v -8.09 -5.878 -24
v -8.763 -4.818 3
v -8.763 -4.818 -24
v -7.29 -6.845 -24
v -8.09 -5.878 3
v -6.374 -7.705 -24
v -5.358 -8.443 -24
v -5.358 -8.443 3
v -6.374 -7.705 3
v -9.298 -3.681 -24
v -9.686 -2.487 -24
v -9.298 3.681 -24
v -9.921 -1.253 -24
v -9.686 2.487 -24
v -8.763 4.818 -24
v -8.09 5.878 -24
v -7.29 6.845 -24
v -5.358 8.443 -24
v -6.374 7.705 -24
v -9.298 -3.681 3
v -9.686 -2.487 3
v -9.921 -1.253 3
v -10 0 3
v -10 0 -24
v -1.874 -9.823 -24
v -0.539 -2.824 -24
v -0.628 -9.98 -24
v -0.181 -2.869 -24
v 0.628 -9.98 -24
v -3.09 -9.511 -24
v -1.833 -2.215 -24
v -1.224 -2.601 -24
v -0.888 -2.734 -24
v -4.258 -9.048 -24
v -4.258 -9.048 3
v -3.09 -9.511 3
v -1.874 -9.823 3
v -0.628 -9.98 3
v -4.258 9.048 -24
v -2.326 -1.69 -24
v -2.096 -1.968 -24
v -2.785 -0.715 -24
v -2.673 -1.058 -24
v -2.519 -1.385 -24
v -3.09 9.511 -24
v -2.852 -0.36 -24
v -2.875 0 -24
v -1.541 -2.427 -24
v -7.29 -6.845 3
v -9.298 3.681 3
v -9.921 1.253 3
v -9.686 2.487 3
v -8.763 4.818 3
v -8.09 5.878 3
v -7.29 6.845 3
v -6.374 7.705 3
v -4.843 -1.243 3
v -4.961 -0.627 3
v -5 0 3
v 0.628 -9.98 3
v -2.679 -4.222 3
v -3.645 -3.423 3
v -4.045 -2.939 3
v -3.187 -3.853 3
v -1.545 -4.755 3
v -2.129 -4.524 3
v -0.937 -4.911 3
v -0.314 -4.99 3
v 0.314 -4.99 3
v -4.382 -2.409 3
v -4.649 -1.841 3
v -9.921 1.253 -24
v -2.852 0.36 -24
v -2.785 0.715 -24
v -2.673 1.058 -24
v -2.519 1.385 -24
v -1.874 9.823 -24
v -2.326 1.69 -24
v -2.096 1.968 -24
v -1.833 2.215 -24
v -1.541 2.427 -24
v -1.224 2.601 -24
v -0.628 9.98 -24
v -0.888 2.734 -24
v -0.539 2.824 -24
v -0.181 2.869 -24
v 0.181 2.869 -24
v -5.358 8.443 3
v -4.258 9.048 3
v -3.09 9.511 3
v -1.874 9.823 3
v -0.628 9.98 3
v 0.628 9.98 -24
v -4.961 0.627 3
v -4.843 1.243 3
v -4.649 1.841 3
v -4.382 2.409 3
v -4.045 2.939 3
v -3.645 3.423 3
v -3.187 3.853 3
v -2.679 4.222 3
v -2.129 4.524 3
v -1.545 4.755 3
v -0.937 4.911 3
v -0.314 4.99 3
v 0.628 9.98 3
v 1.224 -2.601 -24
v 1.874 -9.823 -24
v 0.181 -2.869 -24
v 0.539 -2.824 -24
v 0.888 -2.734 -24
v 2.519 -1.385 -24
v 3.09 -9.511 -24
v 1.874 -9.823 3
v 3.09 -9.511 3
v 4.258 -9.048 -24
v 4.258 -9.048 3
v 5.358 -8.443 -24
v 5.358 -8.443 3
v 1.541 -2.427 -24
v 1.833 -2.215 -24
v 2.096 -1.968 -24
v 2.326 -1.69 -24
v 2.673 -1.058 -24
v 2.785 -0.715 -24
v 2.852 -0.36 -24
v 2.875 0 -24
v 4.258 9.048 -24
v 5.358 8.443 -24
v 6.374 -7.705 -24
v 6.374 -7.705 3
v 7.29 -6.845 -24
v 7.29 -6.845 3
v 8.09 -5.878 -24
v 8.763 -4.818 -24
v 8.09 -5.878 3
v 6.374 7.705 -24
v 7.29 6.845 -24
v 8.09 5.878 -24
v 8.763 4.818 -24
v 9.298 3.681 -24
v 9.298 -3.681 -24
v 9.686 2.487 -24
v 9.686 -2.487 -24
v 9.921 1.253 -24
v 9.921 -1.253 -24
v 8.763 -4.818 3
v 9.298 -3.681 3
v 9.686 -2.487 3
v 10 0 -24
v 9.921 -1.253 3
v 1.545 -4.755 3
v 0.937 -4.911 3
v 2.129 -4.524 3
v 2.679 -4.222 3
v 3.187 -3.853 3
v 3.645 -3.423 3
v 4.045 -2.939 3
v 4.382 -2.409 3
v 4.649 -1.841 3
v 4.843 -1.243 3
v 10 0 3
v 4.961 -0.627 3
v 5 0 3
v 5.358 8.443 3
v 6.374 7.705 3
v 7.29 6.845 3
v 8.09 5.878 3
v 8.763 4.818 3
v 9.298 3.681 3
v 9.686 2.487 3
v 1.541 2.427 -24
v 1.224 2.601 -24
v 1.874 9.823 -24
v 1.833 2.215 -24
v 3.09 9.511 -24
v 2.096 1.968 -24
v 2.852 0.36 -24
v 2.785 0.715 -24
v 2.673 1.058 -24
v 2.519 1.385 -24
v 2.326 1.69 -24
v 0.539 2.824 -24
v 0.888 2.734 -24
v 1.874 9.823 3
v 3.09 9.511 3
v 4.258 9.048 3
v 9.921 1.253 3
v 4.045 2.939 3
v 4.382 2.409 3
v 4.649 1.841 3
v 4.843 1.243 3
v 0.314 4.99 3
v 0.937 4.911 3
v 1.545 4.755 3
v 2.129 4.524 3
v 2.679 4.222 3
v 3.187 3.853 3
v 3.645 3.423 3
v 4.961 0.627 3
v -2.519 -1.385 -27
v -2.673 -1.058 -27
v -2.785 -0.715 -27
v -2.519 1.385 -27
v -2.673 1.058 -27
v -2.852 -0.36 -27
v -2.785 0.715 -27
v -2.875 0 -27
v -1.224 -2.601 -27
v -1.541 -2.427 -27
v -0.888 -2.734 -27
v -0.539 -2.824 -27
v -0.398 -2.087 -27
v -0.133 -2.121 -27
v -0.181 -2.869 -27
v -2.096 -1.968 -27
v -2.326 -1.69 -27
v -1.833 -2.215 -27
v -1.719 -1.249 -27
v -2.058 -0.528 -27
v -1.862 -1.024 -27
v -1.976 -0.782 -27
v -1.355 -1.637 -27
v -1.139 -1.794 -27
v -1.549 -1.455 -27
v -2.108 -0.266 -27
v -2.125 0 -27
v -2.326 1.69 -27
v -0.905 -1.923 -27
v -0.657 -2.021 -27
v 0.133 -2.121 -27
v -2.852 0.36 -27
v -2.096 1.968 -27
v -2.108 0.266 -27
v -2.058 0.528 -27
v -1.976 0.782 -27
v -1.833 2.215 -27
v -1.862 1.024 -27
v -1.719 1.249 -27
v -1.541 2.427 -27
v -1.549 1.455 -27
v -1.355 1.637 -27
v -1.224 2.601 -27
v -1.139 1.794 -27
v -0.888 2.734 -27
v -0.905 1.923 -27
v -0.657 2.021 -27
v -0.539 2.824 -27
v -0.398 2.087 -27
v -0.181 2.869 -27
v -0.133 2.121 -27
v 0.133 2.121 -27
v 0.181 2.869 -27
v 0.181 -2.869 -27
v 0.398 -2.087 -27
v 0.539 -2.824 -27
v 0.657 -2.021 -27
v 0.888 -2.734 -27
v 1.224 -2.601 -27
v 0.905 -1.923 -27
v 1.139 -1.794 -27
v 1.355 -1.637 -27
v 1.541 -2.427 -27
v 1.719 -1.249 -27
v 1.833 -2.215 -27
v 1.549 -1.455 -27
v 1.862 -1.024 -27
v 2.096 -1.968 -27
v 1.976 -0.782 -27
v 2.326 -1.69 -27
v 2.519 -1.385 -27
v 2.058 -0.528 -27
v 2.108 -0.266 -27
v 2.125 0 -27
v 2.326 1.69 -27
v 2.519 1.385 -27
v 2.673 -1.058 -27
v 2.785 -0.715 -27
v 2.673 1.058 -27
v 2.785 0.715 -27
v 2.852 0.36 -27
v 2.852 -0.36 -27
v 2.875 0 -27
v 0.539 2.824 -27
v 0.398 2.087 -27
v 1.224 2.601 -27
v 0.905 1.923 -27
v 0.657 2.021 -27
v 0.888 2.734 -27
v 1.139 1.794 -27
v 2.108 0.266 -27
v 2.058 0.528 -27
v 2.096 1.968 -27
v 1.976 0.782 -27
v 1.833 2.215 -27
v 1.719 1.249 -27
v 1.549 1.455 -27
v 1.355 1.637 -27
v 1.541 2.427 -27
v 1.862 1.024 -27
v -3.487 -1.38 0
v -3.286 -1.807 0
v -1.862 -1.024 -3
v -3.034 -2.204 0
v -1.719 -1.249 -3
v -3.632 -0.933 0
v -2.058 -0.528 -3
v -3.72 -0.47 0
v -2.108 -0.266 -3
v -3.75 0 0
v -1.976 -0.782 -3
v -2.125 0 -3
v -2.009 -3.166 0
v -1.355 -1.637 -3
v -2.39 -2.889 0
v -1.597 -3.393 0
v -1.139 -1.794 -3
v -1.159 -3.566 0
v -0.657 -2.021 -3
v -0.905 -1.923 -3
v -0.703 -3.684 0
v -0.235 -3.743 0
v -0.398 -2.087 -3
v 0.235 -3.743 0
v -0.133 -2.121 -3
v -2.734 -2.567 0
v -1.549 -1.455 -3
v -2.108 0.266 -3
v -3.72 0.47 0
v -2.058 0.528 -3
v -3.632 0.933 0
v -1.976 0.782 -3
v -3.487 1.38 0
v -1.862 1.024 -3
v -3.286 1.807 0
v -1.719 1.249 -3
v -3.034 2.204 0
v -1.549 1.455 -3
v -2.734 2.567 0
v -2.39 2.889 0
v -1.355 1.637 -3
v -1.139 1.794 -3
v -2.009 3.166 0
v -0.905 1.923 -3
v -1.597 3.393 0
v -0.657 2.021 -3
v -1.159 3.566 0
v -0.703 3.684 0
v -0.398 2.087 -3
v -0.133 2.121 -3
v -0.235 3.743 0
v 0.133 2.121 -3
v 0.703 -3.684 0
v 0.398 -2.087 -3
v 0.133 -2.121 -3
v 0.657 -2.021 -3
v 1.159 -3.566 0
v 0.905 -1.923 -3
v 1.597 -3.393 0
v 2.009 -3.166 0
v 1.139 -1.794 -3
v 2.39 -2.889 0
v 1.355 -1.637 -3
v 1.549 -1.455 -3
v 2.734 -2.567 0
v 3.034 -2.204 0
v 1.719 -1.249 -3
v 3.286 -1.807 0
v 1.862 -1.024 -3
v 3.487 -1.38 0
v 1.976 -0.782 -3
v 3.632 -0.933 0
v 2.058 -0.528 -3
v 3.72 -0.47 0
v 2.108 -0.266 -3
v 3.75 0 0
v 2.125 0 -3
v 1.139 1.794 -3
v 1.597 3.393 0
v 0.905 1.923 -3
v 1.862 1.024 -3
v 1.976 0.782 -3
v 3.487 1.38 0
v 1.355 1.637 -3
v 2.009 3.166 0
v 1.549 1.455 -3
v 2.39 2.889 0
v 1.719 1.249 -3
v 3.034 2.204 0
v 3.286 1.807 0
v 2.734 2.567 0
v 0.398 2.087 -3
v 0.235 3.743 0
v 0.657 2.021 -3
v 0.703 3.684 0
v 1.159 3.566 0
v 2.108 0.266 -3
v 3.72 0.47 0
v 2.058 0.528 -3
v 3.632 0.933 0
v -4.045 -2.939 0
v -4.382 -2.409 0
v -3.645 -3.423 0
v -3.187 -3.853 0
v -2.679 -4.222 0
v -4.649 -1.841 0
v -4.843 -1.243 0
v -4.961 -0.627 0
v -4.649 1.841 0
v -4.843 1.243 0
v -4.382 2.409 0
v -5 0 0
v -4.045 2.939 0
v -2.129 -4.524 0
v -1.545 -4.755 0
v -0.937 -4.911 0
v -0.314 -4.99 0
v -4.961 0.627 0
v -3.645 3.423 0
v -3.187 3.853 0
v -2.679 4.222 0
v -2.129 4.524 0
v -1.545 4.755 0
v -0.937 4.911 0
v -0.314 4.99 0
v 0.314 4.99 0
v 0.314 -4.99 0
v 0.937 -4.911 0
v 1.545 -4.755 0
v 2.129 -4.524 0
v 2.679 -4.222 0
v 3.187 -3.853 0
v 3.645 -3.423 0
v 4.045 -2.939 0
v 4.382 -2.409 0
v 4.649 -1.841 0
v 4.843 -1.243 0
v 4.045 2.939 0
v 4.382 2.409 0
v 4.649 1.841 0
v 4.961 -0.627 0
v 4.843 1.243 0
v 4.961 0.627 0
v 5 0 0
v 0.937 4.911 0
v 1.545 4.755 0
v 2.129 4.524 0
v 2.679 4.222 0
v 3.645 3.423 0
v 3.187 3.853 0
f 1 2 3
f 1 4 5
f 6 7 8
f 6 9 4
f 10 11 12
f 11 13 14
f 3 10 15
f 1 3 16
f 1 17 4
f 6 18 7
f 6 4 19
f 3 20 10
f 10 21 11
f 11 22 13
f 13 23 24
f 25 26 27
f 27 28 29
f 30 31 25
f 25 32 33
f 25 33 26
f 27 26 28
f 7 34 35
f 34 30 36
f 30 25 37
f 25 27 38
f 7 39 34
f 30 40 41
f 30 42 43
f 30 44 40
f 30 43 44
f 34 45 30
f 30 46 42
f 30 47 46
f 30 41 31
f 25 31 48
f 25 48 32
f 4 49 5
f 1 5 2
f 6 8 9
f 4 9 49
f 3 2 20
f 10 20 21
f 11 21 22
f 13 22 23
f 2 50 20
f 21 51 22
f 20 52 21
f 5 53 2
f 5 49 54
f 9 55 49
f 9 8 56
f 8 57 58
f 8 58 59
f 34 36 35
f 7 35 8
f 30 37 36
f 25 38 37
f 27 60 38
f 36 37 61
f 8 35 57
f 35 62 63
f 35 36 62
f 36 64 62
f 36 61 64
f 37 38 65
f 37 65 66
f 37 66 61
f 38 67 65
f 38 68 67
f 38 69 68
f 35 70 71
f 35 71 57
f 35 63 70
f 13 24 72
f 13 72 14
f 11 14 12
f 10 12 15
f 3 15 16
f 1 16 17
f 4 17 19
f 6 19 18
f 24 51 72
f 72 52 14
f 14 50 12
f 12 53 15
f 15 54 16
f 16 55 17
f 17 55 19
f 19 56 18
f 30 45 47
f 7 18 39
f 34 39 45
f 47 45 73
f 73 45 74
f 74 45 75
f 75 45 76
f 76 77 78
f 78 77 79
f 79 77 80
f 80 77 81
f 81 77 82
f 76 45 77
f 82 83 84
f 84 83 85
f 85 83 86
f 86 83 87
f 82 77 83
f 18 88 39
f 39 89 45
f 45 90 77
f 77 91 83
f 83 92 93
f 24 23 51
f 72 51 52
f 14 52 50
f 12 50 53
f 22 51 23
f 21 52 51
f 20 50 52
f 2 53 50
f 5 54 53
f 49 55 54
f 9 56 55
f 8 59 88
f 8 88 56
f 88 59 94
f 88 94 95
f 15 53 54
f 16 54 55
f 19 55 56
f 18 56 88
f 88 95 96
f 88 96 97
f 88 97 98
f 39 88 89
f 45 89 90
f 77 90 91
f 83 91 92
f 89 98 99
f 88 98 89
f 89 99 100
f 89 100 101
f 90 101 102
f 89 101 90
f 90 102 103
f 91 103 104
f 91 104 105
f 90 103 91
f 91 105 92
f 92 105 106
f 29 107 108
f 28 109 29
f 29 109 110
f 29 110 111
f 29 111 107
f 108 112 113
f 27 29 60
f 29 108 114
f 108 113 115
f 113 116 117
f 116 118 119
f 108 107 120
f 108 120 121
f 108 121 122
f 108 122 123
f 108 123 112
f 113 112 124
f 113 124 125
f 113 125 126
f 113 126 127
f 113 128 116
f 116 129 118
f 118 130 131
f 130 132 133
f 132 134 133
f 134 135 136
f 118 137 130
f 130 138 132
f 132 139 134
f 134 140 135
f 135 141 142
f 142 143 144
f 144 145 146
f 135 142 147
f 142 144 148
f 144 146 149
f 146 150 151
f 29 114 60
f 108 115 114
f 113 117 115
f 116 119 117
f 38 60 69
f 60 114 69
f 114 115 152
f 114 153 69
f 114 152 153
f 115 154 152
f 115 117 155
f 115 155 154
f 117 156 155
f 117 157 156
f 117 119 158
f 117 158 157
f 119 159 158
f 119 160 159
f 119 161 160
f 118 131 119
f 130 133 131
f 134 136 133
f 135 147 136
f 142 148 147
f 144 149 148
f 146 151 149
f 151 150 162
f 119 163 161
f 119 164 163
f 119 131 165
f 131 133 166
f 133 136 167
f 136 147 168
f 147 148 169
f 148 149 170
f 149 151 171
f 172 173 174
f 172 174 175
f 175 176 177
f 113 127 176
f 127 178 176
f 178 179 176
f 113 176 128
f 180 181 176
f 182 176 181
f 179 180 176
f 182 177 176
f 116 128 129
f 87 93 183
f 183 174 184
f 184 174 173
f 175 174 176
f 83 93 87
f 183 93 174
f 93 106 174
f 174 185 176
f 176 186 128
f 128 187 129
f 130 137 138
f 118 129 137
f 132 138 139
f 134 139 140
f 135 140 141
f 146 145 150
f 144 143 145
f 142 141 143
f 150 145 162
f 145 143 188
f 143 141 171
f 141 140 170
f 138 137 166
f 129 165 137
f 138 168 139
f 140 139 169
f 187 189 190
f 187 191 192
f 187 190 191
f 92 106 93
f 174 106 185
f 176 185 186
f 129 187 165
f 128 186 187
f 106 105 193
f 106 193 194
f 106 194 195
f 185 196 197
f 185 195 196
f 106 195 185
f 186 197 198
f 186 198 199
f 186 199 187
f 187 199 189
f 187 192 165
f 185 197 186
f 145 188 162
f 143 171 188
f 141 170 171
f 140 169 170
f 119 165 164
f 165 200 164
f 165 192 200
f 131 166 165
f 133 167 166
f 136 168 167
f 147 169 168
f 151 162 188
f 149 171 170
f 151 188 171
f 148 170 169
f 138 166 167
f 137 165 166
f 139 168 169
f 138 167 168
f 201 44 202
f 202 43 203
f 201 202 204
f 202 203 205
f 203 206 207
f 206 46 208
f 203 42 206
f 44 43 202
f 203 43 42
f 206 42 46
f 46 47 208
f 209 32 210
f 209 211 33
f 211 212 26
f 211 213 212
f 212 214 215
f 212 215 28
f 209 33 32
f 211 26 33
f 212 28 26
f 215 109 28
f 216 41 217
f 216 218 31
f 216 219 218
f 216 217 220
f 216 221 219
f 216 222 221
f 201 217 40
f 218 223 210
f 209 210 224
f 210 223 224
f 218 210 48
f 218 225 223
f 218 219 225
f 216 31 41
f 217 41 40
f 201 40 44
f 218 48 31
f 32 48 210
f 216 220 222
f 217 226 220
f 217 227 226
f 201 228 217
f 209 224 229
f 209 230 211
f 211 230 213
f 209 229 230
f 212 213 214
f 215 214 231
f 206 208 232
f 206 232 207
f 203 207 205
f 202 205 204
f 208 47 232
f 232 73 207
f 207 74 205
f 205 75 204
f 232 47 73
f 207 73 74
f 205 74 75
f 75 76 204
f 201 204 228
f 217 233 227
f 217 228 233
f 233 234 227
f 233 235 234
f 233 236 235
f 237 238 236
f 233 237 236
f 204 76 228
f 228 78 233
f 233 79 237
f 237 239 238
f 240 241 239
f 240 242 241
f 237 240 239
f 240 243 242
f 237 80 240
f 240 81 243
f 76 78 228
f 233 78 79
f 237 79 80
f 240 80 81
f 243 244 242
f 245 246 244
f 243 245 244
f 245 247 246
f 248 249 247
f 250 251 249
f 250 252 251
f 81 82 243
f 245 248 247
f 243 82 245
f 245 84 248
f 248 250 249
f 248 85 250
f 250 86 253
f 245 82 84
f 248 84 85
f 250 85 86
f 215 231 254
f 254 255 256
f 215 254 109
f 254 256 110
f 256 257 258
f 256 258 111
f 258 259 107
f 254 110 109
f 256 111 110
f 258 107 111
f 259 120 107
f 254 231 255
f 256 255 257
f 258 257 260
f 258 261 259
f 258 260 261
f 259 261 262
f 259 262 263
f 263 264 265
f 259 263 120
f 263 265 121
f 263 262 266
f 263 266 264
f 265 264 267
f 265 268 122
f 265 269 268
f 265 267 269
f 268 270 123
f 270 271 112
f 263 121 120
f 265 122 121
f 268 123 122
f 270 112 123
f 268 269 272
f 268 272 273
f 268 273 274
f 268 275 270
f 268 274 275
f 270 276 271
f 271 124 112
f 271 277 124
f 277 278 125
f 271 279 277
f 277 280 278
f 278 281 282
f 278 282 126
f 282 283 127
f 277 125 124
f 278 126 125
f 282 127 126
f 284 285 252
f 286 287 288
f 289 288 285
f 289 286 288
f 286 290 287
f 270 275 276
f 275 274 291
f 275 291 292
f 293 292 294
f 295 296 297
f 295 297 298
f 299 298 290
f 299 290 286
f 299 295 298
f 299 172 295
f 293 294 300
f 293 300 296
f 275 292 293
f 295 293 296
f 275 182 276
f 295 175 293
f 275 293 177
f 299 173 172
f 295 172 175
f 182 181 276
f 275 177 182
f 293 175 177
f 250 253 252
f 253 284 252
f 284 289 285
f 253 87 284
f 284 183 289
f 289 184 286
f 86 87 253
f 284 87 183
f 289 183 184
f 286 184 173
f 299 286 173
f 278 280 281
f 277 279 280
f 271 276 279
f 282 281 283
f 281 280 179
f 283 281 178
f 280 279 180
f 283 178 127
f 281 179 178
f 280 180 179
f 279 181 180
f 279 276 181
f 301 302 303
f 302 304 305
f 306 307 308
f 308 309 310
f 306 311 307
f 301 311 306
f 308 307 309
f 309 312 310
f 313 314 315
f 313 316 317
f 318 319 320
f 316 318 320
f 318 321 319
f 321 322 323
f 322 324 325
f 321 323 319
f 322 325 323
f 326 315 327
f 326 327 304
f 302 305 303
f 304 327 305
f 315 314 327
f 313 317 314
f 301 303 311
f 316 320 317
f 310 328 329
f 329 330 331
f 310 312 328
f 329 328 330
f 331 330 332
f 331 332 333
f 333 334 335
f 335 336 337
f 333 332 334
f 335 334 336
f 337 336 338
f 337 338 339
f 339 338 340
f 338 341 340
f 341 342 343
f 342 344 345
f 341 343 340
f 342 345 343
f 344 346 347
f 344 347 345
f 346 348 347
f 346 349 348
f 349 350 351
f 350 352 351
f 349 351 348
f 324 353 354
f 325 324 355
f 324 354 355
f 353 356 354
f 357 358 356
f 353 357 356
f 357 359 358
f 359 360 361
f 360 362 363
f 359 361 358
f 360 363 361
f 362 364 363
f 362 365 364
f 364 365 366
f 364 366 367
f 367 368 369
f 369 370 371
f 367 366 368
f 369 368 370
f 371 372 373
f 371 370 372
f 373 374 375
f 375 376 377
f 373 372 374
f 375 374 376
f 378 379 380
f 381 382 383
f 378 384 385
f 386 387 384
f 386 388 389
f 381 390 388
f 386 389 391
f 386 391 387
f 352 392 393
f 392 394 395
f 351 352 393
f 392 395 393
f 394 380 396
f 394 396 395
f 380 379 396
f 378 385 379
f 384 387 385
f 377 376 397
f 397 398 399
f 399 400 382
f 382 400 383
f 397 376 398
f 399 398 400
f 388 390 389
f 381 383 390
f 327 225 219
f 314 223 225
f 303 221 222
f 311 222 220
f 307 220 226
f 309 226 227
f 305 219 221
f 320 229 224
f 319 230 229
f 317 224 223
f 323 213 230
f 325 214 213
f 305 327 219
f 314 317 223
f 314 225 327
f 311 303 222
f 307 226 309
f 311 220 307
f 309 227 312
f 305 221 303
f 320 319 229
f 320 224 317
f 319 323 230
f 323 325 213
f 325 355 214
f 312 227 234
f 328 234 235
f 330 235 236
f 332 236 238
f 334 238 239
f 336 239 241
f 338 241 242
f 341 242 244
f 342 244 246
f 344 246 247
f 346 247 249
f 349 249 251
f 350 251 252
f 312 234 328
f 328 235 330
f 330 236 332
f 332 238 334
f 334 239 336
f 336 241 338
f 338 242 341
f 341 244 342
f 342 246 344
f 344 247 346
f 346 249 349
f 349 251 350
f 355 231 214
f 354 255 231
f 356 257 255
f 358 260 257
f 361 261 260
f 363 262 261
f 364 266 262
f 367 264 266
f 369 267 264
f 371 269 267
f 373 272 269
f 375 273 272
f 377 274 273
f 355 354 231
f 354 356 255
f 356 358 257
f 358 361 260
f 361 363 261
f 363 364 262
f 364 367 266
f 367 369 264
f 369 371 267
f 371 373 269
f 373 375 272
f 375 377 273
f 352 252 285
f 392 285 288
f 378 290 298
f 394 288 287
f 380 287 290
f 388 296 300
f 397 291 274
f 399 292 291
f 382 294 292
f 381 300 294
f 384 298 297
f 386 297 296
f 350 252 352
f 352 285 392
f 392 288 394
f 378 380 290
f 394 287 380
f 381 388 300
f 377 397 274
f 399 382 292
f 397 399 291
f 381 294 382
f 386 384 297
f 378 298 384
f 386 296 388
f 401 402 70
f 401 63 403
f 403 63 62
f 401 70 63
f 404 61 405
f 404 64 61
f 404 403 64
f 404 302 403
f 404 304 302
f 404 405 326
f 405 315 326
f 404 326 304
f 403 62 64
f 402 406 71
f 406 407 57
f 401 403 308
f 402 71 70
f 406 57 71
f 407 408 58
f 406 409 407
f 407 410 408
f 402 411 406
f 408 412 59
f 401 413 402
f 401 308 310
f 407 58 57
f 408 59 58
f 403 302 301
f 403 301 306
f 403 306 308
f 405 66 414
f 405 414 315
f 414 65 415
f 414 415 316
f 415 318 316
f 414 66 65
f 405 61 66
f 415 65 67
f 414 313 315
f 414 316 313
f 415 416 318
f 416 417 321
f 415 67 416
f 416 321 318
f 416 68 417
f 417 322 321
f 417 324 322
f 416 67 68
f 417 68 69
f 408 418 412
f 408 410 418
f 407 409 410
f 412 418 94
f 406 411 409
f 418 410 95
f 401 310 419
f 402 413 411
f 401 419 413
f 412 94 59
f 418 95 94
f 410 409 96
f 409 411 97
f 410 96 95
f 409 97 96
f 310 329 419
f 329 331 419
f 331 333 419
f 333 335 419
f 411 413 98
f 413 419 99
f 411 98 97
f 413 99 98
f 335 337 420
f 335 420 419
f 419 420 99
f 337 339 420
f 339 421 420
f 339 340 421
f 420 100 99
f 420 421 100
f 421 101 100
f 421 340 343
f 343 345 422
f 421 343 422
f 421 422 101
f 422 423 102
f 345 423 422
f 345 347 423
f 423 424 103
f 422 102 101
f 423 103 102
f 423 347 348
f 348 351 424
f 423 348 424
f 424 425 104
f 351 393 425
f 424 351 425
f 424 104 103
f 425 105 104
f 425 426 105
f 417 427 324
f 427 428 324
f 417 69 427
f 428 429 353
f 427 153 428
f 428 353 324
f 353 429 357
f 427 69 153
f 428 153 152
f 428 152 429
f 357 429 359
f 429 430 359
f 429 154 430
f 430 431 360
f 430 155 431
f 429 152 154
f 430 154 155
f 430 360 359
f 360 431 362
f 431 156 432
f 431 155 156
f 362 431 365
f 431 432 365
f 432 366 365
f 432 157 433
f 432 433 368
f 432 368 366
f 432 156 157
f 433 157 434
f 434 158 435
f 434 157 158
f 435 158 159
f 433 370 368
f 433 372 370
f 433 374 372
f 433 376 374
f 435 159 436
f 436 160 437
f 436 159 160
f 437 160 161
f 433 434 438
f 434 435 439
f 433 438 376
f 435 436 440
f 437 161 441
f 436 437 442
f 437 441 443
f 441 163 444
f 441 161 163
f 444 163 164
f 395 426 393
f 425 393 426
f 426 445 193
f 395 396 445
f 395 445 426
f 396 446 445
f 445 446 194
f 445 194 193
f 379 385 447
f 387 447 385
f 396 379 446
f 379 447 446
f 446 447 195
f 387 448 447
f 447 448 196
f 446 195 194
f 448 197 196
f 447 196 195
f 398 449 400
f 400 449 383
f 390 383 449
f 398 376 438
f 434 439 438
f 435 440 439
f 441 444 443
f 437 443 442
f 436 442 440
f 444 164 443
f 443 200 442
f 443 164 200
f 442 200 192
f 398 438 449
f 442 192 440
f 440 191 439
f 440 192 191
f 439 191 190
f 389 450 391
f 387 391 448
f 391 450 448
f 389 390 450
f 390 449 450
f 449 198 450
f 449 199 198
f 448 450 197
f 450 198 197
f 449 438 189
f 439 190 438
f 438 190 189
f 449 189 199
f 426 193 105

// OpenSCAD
$fn = 50;

difference() {
	union() {
		translate(v = [0, 0, -24.0]) {
			cylinder(h = 27, r = 10.0);
		}
		#translate(v = [0, 0, -27.0]) {
			cylinder(h = 27, r = 2.875);
		}
	}
	union() {
		translate(v = [0, 0, 0]) {
			rotate(a = [0, 0, 0]) {
				difference() {
					union() {
						translate(v = [0, 0, -27.0]) {
							cylinder(h = 27, r = 2.0);
						}
						translate(v = [0, 0, -3]) {
							cylinder(h = 3, r1 = 2.125, r2 = 3.75);
						}
						translate(v = [0, 0, -27.0]) {
							cylinder(h = 27, r = 2.125);
						}
						translate(v = [0, 0, -27.0]) {
							cylinder(h = 27, r = 2.0);
						}
					}
					union();
				}
			}
		}
		#cylinder(h = 3, r = 5.0);
	}
}
